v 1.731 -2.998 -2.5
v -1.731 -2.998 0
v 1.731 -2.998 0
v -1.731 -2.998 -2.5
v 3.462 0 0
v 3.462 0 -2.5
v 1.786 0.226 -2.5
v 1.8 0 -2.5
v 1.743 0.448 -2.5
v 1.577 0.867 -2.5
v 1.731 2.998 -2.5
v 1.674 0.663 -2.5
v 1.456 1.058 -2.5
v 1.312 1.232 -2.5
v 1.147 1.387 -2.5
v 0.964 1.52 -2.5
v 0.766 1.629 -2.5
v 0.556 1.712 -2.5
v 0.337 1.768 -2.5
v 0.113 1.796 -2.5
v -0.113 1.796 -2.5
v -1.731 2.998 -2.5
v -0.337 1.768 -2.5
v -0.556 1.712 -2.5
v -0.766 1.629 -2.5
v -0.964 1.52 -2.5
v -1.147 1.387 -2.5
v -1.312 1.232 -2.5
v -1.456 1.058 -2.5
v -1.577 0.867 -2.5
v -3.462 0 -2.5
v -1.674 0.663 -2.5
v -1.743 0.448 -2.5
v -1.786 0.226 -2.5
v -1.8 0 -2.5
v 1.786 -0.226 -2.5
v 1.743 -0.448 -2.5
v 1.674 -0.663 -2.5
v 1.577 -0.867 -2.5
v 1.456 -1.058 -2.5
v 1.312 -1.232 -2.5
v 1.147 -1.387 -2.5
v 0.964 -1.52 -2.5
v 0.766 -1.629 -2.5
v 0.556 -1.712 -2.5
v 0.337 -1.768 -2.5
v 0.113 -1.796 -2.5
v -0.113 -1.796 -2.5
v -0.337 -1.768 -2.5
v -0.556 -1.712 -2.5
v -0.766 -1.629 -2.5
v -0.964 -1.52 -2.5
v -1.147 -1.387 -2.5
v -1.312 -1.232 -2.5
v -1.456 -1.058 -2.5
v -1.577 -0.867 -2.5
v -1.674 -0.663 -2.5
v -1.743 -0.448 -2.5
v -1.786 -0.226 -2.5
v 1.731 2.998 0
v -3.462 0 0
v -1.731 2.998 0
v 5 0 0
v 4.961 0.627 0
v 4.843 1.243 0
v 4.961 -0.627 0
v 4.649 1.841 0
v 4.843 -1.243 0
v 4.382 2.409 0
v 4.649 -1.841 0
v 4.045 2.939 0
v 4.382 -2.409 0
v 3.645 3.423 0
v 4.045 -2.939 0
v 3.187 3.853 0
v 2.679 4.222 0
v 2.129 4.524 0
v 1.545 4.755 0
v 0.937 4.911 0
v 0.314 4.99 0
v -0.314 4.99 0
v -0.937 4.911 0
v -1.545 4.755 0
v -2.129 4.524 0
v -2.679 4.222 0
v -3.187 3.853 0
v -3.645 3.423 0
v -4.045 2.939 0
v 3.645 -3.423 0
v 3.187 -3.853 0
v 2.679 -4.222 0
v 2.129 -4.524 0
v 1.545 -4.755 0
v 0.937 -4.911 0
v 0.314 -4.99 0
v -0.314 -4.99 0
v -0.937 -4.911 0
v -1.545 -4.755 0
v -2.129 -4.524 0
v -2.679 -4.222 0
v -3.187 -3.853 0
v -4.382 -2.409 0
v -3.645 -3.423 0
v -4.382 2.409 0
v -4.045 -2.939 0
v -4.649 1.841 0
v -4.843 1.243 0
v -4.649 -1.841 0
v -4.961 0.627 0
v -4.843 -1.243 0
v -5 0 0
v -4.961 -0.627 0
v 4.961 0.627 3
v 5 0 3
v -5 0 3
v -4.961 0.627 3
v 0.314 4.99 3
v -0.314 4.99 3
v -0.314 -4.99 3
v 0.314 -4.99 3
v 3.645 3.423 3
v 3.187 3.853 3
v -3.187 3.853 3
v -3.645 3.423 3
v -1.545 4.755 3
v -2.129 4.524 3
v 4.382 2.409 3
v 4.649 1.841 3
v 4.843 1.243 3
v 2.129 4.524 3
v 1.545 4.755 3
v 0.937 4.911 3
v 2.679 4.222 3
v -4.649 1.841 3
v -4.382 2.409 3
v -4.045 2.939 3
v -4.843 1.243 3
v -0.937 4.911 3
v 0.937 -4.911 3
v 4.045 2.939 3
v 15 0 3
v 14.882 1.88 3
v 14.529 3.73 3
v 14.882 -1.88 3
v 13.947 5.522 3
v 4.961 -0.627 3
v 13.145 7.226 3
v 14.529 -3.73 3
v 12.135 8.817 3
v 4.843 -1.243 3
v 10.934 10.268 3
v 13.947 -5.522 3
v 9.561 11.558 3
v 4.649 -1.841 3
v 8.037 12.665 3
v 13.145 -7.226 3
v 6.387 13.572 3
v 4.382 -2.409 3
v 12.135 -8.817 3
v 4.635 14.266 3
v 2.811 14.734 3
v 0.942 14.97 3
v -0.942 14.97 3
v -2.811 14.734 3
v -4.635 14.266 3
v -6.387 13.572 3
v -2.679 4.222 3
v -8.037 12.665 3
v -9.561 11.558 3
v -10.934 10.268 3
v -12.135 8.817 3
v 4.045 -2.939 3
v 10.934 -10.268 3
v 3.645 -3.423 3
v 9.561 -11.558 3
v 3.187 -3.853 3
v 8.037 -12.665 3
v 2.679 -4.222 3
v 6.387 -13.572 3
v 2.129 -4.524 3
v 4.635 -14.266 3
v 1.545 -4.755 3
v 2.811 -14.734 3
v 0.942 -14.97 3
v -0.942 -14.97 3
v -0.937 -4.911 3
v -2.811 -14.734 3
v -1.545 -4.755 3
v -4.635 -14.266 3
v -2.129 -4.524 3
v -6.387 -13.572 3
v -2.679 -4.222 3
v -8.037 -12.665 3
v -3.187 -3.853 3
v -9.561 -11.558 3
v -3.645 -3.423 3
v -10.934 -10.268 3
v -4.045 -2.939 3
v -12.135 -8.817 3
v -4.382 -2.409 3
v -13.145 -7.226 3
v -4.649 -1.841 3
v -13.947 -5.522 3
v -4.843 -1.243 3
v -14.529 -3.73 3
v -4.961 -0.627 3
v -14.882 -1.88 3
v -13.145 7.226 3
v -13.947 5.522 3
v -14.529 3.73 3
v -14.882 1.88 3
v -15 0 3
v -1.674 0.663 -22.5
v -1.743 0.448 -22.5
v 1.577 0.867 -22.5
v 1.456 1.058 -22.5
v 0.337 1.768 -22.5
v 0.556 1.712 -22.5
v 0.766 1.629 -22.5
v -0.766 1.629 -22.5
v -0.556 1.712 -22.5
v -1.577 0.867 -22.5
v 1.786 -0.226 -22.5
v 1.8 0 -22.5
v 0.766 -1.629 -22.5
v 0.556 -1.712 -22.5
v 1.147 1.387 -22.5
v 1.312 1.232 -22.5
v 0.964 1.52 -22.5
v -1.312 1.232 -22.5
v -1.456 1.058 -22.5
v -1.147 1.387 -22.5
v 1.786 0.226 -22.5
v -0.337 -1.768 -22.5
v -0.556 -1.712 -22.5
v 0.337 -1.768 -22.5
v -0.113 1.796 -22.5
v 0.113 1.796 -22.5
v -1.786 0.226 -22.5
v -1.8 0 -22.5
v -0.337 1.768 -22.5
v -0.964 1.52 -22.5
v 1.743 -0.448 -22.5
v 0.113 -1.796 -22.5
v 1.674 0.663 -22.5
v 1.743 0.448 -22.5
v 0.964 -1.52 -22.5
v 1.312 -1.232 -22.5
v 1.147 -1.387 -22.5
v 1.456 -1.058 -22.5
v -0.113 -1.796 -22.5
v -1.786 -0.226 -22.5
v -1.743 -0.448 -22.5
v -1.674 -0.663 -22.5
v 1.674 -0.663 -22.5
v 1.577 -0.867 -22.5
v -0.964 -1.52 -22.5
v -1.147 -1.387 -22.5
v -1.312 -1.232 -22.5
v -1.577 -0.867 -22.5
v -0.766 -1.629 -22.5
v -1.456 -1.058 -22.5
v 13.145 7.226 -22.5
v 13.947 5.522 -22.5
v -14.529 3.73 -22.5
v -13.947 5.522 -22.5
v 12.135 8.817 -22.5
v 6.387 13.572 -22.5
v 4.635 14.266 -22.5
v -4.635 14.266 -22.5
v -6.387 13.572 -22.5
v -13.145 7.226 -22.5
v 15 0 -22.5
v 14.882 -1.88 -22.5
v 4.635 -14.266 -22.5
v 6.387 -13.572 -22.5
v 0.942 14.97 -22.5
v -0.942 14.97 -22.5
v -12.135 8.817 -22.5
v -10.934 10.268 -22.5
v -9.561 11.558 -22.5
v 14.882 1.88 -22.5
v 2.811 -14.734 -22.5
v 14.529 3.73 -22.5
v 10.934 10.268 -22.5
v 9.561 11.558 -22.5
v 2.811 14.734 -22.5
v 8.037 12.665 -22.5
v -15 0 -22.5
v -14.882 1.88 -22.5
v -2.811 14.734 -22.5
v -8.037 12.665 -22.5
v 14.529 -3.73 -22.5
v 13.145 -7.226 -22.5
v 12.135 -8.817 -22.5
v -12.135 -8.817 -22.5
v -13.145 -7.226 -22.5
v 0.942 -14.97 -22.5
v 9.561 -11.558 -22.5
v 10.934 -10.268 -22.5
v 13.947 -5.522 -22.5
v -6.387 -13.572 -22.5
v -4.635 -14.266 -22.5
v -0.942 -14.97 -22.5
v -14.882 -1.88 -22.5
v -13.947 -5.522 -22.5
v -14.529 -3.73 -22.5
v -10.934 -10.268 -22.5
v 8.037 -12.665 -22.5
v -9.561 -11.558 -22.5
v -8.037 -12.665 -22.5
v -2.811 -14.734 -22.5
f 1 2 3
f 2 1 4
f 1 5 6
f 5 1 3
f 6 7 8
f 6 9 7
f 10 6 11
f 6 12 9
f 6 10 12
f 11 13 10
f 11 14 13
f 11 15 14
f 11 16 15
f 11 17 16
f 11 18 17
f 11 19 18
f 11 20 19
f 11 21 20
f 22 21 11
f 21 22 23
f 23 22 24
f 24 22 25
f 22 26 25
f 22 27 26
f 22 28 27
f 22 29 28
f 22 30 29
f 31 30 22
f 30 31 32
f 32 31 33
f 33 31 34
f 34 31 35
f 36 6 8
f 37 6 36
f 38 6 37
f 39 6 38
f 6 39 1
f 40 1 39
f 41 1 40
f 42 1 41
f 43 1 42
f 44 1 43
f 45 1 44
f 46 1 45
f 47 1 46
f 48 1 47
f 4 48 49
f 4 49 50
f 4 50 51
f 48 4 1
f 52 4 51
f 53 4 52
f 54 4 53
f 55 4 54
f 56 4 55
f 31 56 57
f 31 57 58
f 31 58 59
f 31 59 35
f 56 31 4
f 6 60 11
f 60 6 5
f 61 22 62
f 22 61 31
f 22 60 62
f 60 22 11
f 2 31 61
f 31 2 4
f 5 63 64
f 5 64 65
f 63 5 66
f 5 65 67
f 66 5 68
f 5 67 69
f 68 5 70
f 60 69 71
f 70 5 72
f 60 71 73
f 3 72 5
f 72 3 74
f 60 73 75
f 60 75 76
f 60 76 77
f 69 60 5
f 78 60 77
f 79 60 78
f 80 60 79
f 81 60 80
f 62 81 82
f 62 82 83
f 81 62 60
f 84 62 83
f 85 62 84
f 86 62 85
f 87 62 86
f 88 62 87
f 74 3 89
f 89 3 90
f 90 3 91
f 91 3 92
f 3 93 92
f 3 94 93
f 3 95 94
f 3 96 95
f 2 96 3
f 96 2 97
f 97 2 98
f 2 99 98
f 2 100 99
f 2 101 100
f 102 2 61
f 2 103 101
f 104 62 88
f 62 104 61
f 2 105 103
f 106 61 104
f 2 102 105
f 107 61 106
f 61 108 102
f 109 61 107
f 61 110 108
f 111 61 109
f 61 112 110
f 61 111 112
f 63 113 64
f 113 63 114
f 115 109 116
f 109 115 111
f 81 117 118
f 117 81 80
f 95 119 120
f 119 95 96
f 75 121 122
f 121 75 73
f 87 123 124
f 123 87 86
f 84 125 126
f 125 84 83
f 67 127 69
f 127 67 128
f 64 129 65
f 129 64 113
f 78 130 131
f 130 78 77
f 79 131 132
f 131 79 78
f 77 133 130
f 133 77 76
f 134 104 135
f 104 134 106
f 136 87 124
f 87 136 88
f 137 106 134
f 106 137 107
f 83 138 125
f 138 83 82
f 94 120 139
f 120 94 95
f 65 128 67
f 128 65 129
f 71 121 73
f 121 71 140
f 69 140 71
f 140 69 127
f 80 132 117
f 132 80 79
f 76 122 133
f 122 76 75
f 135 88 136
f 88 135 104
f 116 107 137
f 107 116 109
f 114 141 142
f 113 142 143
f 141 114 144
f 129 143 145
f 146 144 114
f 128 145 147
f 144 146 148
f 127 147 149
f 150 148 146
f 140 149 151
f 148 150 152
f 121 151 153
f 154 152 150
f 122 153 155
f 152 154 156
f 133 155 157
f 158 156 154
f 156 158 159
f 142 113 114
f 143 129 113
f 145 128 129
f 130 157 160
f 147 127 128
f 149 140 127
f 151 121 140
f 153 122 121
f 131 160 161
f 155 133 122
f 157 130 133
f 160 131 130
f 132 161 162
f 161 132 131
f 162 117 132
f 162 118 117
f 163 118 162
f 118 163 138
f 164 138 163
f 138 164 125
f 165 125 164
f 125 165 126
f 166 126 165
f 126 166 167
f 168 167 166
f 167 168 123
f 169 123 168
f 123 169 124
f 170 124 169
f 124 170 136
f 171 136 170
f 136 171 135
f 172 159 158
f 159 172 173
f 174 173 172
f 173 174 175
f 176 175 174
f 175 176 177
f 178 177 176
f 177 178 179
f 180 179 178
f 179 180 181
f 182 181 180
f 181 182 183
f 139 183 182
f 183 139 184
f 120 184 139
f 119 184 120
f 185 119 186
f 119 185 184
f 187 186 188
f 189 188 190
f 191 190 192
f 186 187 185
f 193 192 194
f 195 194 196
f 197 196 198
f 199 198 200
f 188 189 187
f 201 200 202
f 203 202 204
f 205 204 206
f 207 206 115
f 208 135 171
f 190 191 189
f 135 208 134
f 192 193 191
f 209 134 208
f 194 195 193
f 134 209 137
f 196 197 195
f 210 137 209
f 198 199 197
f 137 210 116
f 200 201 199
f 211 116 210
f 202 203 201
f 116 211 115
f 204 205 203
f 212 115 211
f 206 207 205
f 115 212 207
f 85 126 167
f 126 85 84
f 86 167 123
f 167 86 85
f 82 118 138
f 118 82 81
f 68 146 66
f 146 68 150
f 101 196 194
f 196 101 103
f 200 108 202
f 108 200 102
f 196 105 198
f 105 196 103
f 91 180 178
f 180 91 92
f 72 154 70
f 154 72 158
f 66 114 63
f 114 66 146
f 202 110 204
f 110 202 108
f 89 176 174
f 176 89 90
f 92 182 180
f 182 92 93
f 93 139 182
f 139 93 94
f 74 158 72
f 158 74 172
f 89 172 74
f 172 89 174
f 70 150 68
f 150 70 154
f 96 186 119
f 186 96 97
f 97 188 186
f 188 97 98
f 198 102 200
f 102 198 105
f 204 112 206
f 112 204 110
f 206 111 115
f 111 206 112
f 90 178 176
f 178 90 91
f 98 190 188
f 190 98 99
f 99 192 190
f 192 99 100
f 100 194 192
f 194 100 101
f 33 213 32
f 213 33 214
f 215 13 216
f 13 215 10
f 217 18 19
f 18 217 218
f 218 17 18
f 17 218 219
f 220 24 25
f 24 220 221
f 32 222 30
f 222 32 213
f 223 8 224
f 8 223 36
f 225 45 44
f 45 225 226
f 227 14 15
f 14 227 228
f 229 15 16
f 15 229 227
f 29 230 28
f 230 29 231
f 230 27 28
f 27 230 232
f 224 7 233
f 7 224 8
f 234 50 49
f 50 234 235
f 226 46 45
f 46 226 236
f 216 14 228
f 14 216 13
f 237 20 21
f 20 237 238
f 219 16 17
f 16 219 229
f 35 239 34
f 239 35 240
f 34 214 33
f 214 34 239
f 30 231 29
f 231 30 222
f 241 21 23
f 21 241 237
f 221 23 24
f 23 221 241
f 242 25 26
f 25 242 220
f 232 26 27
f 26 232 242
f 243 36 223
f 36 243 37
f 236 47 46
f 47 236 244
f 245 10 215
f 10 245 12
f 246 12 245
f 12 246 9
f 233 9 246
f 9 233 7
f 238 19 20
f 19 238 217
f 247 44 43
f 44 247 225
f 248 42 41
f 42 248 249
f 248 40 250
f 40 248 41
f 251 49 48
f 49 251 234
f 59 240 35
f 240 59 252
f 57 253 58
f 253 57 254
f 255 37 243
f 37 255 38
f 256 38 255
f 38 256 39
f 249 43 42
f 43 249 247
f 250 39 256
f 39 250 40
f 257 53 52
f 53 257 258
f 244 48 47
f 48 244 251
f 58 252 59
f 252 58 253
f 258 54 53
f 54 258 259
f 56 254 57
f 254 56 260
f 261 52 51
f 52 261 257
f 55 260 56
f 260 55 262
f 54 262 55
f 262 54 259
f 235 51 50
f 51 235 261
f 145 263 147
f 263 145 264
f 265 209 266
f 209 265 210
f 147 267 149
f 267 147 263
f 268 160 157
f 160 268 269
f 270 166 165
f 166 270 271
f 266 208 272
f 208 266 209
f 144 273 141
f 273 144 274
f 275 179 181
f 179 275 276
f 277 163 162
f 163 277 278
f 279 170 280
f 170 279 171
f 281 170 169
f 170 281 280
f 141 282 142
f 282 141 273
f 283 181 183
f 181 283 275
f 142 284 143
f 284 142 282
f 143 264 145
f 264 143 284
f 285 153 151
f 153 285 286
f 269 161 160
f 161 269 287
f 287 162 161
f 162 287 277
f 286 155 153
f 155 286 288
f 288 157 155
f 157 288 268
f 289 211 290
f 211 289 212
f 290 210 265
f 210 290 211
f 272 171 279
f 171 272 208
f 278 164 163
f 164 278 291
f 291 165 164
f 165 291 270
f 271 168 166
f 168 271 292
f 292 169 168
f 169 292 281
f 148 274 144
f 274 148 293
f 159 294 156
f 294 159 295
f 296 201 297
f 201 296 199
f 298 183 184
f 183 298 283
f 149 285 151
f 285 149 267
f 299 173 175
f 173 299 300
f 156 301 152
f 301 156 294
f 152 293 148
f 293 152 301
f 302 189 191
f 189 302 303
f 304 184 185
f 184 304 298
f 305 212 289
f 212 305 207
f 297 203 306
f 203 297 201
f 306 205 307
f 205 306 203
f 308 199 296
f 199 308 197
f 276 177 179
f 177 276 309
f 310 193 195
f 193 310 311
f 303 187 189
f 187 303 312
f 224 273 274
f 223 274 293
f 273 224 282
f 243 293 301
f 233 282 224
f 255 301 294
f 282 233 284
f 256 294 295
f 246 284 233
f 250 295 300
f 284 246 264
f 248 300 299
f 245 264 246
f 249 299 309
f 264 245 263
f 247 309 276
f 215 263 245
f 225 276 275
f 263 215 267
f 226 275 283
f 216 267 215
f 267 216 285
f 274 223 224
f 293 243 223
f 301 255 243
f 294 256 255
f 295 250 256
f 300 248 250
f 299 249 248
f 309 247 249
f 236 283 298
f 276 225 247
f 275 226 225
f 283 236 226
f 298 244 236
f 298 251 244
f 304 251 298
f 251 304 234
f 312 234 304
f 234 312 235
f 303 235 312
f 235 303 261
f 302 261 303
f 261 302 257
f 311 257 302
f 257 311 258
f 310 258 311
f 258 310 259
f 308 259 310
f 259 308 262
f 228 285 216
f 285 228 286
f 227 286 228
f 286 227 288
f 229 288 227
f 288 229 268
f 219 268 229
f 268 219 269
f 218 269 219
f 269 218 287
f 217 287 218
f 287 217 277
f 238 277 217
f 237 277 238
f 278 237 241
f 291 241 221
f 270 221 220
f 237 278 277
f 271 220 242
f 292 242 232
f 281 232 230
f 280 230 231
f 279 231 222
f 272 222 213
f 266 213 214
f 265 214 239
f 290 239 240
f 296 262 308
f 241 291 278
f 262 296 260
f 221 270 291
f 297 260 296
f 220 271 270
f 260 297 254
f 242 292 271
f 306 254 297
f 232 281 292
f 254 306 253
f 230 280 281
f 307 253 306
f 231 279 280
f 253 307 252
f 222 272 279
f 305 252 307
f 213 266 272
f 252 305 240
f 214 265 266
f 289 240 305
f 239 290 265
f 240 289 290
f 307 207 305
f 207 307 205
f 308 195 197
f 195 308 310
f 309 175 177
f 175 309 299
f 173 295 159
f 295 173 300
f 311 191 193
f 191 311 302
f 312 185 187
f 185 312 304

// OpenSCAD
$fn = 50;

difference() {
	union() {
		translate(v = [0, 0, -22.5]) {
			cylinder(h = 25.5, r = 15.0);
		}
	}
	union() {
		translate(v = [0, 0, 0]) {
			rotate(a = [0, 0, 0]) {
				difference() {
					union() {
						translate(v = [0, 0, -2.5]) {
							linear_extrude(height = 2.5) {
								polygon(points = [[3.4619999999999997, 0.0], [1.7310000000000003, 2.9981799479017264], [-1.7309999999999992, 2.9981799479017264], [-3.4619999999999997, 4.2397272186481365e-16], [-1.7310000000000014, -2.998179947901726], [1.7309999999999977, -2.9981799479017277]]);
							}
						}
					}
					union();
				}
			}
		}
		#cylinder(h = 3, r = 5.0);
		#translate(v = [0, 0, -100.0]) {
			cylinder(h = 200, r = 1.8);
		}
	}
}
